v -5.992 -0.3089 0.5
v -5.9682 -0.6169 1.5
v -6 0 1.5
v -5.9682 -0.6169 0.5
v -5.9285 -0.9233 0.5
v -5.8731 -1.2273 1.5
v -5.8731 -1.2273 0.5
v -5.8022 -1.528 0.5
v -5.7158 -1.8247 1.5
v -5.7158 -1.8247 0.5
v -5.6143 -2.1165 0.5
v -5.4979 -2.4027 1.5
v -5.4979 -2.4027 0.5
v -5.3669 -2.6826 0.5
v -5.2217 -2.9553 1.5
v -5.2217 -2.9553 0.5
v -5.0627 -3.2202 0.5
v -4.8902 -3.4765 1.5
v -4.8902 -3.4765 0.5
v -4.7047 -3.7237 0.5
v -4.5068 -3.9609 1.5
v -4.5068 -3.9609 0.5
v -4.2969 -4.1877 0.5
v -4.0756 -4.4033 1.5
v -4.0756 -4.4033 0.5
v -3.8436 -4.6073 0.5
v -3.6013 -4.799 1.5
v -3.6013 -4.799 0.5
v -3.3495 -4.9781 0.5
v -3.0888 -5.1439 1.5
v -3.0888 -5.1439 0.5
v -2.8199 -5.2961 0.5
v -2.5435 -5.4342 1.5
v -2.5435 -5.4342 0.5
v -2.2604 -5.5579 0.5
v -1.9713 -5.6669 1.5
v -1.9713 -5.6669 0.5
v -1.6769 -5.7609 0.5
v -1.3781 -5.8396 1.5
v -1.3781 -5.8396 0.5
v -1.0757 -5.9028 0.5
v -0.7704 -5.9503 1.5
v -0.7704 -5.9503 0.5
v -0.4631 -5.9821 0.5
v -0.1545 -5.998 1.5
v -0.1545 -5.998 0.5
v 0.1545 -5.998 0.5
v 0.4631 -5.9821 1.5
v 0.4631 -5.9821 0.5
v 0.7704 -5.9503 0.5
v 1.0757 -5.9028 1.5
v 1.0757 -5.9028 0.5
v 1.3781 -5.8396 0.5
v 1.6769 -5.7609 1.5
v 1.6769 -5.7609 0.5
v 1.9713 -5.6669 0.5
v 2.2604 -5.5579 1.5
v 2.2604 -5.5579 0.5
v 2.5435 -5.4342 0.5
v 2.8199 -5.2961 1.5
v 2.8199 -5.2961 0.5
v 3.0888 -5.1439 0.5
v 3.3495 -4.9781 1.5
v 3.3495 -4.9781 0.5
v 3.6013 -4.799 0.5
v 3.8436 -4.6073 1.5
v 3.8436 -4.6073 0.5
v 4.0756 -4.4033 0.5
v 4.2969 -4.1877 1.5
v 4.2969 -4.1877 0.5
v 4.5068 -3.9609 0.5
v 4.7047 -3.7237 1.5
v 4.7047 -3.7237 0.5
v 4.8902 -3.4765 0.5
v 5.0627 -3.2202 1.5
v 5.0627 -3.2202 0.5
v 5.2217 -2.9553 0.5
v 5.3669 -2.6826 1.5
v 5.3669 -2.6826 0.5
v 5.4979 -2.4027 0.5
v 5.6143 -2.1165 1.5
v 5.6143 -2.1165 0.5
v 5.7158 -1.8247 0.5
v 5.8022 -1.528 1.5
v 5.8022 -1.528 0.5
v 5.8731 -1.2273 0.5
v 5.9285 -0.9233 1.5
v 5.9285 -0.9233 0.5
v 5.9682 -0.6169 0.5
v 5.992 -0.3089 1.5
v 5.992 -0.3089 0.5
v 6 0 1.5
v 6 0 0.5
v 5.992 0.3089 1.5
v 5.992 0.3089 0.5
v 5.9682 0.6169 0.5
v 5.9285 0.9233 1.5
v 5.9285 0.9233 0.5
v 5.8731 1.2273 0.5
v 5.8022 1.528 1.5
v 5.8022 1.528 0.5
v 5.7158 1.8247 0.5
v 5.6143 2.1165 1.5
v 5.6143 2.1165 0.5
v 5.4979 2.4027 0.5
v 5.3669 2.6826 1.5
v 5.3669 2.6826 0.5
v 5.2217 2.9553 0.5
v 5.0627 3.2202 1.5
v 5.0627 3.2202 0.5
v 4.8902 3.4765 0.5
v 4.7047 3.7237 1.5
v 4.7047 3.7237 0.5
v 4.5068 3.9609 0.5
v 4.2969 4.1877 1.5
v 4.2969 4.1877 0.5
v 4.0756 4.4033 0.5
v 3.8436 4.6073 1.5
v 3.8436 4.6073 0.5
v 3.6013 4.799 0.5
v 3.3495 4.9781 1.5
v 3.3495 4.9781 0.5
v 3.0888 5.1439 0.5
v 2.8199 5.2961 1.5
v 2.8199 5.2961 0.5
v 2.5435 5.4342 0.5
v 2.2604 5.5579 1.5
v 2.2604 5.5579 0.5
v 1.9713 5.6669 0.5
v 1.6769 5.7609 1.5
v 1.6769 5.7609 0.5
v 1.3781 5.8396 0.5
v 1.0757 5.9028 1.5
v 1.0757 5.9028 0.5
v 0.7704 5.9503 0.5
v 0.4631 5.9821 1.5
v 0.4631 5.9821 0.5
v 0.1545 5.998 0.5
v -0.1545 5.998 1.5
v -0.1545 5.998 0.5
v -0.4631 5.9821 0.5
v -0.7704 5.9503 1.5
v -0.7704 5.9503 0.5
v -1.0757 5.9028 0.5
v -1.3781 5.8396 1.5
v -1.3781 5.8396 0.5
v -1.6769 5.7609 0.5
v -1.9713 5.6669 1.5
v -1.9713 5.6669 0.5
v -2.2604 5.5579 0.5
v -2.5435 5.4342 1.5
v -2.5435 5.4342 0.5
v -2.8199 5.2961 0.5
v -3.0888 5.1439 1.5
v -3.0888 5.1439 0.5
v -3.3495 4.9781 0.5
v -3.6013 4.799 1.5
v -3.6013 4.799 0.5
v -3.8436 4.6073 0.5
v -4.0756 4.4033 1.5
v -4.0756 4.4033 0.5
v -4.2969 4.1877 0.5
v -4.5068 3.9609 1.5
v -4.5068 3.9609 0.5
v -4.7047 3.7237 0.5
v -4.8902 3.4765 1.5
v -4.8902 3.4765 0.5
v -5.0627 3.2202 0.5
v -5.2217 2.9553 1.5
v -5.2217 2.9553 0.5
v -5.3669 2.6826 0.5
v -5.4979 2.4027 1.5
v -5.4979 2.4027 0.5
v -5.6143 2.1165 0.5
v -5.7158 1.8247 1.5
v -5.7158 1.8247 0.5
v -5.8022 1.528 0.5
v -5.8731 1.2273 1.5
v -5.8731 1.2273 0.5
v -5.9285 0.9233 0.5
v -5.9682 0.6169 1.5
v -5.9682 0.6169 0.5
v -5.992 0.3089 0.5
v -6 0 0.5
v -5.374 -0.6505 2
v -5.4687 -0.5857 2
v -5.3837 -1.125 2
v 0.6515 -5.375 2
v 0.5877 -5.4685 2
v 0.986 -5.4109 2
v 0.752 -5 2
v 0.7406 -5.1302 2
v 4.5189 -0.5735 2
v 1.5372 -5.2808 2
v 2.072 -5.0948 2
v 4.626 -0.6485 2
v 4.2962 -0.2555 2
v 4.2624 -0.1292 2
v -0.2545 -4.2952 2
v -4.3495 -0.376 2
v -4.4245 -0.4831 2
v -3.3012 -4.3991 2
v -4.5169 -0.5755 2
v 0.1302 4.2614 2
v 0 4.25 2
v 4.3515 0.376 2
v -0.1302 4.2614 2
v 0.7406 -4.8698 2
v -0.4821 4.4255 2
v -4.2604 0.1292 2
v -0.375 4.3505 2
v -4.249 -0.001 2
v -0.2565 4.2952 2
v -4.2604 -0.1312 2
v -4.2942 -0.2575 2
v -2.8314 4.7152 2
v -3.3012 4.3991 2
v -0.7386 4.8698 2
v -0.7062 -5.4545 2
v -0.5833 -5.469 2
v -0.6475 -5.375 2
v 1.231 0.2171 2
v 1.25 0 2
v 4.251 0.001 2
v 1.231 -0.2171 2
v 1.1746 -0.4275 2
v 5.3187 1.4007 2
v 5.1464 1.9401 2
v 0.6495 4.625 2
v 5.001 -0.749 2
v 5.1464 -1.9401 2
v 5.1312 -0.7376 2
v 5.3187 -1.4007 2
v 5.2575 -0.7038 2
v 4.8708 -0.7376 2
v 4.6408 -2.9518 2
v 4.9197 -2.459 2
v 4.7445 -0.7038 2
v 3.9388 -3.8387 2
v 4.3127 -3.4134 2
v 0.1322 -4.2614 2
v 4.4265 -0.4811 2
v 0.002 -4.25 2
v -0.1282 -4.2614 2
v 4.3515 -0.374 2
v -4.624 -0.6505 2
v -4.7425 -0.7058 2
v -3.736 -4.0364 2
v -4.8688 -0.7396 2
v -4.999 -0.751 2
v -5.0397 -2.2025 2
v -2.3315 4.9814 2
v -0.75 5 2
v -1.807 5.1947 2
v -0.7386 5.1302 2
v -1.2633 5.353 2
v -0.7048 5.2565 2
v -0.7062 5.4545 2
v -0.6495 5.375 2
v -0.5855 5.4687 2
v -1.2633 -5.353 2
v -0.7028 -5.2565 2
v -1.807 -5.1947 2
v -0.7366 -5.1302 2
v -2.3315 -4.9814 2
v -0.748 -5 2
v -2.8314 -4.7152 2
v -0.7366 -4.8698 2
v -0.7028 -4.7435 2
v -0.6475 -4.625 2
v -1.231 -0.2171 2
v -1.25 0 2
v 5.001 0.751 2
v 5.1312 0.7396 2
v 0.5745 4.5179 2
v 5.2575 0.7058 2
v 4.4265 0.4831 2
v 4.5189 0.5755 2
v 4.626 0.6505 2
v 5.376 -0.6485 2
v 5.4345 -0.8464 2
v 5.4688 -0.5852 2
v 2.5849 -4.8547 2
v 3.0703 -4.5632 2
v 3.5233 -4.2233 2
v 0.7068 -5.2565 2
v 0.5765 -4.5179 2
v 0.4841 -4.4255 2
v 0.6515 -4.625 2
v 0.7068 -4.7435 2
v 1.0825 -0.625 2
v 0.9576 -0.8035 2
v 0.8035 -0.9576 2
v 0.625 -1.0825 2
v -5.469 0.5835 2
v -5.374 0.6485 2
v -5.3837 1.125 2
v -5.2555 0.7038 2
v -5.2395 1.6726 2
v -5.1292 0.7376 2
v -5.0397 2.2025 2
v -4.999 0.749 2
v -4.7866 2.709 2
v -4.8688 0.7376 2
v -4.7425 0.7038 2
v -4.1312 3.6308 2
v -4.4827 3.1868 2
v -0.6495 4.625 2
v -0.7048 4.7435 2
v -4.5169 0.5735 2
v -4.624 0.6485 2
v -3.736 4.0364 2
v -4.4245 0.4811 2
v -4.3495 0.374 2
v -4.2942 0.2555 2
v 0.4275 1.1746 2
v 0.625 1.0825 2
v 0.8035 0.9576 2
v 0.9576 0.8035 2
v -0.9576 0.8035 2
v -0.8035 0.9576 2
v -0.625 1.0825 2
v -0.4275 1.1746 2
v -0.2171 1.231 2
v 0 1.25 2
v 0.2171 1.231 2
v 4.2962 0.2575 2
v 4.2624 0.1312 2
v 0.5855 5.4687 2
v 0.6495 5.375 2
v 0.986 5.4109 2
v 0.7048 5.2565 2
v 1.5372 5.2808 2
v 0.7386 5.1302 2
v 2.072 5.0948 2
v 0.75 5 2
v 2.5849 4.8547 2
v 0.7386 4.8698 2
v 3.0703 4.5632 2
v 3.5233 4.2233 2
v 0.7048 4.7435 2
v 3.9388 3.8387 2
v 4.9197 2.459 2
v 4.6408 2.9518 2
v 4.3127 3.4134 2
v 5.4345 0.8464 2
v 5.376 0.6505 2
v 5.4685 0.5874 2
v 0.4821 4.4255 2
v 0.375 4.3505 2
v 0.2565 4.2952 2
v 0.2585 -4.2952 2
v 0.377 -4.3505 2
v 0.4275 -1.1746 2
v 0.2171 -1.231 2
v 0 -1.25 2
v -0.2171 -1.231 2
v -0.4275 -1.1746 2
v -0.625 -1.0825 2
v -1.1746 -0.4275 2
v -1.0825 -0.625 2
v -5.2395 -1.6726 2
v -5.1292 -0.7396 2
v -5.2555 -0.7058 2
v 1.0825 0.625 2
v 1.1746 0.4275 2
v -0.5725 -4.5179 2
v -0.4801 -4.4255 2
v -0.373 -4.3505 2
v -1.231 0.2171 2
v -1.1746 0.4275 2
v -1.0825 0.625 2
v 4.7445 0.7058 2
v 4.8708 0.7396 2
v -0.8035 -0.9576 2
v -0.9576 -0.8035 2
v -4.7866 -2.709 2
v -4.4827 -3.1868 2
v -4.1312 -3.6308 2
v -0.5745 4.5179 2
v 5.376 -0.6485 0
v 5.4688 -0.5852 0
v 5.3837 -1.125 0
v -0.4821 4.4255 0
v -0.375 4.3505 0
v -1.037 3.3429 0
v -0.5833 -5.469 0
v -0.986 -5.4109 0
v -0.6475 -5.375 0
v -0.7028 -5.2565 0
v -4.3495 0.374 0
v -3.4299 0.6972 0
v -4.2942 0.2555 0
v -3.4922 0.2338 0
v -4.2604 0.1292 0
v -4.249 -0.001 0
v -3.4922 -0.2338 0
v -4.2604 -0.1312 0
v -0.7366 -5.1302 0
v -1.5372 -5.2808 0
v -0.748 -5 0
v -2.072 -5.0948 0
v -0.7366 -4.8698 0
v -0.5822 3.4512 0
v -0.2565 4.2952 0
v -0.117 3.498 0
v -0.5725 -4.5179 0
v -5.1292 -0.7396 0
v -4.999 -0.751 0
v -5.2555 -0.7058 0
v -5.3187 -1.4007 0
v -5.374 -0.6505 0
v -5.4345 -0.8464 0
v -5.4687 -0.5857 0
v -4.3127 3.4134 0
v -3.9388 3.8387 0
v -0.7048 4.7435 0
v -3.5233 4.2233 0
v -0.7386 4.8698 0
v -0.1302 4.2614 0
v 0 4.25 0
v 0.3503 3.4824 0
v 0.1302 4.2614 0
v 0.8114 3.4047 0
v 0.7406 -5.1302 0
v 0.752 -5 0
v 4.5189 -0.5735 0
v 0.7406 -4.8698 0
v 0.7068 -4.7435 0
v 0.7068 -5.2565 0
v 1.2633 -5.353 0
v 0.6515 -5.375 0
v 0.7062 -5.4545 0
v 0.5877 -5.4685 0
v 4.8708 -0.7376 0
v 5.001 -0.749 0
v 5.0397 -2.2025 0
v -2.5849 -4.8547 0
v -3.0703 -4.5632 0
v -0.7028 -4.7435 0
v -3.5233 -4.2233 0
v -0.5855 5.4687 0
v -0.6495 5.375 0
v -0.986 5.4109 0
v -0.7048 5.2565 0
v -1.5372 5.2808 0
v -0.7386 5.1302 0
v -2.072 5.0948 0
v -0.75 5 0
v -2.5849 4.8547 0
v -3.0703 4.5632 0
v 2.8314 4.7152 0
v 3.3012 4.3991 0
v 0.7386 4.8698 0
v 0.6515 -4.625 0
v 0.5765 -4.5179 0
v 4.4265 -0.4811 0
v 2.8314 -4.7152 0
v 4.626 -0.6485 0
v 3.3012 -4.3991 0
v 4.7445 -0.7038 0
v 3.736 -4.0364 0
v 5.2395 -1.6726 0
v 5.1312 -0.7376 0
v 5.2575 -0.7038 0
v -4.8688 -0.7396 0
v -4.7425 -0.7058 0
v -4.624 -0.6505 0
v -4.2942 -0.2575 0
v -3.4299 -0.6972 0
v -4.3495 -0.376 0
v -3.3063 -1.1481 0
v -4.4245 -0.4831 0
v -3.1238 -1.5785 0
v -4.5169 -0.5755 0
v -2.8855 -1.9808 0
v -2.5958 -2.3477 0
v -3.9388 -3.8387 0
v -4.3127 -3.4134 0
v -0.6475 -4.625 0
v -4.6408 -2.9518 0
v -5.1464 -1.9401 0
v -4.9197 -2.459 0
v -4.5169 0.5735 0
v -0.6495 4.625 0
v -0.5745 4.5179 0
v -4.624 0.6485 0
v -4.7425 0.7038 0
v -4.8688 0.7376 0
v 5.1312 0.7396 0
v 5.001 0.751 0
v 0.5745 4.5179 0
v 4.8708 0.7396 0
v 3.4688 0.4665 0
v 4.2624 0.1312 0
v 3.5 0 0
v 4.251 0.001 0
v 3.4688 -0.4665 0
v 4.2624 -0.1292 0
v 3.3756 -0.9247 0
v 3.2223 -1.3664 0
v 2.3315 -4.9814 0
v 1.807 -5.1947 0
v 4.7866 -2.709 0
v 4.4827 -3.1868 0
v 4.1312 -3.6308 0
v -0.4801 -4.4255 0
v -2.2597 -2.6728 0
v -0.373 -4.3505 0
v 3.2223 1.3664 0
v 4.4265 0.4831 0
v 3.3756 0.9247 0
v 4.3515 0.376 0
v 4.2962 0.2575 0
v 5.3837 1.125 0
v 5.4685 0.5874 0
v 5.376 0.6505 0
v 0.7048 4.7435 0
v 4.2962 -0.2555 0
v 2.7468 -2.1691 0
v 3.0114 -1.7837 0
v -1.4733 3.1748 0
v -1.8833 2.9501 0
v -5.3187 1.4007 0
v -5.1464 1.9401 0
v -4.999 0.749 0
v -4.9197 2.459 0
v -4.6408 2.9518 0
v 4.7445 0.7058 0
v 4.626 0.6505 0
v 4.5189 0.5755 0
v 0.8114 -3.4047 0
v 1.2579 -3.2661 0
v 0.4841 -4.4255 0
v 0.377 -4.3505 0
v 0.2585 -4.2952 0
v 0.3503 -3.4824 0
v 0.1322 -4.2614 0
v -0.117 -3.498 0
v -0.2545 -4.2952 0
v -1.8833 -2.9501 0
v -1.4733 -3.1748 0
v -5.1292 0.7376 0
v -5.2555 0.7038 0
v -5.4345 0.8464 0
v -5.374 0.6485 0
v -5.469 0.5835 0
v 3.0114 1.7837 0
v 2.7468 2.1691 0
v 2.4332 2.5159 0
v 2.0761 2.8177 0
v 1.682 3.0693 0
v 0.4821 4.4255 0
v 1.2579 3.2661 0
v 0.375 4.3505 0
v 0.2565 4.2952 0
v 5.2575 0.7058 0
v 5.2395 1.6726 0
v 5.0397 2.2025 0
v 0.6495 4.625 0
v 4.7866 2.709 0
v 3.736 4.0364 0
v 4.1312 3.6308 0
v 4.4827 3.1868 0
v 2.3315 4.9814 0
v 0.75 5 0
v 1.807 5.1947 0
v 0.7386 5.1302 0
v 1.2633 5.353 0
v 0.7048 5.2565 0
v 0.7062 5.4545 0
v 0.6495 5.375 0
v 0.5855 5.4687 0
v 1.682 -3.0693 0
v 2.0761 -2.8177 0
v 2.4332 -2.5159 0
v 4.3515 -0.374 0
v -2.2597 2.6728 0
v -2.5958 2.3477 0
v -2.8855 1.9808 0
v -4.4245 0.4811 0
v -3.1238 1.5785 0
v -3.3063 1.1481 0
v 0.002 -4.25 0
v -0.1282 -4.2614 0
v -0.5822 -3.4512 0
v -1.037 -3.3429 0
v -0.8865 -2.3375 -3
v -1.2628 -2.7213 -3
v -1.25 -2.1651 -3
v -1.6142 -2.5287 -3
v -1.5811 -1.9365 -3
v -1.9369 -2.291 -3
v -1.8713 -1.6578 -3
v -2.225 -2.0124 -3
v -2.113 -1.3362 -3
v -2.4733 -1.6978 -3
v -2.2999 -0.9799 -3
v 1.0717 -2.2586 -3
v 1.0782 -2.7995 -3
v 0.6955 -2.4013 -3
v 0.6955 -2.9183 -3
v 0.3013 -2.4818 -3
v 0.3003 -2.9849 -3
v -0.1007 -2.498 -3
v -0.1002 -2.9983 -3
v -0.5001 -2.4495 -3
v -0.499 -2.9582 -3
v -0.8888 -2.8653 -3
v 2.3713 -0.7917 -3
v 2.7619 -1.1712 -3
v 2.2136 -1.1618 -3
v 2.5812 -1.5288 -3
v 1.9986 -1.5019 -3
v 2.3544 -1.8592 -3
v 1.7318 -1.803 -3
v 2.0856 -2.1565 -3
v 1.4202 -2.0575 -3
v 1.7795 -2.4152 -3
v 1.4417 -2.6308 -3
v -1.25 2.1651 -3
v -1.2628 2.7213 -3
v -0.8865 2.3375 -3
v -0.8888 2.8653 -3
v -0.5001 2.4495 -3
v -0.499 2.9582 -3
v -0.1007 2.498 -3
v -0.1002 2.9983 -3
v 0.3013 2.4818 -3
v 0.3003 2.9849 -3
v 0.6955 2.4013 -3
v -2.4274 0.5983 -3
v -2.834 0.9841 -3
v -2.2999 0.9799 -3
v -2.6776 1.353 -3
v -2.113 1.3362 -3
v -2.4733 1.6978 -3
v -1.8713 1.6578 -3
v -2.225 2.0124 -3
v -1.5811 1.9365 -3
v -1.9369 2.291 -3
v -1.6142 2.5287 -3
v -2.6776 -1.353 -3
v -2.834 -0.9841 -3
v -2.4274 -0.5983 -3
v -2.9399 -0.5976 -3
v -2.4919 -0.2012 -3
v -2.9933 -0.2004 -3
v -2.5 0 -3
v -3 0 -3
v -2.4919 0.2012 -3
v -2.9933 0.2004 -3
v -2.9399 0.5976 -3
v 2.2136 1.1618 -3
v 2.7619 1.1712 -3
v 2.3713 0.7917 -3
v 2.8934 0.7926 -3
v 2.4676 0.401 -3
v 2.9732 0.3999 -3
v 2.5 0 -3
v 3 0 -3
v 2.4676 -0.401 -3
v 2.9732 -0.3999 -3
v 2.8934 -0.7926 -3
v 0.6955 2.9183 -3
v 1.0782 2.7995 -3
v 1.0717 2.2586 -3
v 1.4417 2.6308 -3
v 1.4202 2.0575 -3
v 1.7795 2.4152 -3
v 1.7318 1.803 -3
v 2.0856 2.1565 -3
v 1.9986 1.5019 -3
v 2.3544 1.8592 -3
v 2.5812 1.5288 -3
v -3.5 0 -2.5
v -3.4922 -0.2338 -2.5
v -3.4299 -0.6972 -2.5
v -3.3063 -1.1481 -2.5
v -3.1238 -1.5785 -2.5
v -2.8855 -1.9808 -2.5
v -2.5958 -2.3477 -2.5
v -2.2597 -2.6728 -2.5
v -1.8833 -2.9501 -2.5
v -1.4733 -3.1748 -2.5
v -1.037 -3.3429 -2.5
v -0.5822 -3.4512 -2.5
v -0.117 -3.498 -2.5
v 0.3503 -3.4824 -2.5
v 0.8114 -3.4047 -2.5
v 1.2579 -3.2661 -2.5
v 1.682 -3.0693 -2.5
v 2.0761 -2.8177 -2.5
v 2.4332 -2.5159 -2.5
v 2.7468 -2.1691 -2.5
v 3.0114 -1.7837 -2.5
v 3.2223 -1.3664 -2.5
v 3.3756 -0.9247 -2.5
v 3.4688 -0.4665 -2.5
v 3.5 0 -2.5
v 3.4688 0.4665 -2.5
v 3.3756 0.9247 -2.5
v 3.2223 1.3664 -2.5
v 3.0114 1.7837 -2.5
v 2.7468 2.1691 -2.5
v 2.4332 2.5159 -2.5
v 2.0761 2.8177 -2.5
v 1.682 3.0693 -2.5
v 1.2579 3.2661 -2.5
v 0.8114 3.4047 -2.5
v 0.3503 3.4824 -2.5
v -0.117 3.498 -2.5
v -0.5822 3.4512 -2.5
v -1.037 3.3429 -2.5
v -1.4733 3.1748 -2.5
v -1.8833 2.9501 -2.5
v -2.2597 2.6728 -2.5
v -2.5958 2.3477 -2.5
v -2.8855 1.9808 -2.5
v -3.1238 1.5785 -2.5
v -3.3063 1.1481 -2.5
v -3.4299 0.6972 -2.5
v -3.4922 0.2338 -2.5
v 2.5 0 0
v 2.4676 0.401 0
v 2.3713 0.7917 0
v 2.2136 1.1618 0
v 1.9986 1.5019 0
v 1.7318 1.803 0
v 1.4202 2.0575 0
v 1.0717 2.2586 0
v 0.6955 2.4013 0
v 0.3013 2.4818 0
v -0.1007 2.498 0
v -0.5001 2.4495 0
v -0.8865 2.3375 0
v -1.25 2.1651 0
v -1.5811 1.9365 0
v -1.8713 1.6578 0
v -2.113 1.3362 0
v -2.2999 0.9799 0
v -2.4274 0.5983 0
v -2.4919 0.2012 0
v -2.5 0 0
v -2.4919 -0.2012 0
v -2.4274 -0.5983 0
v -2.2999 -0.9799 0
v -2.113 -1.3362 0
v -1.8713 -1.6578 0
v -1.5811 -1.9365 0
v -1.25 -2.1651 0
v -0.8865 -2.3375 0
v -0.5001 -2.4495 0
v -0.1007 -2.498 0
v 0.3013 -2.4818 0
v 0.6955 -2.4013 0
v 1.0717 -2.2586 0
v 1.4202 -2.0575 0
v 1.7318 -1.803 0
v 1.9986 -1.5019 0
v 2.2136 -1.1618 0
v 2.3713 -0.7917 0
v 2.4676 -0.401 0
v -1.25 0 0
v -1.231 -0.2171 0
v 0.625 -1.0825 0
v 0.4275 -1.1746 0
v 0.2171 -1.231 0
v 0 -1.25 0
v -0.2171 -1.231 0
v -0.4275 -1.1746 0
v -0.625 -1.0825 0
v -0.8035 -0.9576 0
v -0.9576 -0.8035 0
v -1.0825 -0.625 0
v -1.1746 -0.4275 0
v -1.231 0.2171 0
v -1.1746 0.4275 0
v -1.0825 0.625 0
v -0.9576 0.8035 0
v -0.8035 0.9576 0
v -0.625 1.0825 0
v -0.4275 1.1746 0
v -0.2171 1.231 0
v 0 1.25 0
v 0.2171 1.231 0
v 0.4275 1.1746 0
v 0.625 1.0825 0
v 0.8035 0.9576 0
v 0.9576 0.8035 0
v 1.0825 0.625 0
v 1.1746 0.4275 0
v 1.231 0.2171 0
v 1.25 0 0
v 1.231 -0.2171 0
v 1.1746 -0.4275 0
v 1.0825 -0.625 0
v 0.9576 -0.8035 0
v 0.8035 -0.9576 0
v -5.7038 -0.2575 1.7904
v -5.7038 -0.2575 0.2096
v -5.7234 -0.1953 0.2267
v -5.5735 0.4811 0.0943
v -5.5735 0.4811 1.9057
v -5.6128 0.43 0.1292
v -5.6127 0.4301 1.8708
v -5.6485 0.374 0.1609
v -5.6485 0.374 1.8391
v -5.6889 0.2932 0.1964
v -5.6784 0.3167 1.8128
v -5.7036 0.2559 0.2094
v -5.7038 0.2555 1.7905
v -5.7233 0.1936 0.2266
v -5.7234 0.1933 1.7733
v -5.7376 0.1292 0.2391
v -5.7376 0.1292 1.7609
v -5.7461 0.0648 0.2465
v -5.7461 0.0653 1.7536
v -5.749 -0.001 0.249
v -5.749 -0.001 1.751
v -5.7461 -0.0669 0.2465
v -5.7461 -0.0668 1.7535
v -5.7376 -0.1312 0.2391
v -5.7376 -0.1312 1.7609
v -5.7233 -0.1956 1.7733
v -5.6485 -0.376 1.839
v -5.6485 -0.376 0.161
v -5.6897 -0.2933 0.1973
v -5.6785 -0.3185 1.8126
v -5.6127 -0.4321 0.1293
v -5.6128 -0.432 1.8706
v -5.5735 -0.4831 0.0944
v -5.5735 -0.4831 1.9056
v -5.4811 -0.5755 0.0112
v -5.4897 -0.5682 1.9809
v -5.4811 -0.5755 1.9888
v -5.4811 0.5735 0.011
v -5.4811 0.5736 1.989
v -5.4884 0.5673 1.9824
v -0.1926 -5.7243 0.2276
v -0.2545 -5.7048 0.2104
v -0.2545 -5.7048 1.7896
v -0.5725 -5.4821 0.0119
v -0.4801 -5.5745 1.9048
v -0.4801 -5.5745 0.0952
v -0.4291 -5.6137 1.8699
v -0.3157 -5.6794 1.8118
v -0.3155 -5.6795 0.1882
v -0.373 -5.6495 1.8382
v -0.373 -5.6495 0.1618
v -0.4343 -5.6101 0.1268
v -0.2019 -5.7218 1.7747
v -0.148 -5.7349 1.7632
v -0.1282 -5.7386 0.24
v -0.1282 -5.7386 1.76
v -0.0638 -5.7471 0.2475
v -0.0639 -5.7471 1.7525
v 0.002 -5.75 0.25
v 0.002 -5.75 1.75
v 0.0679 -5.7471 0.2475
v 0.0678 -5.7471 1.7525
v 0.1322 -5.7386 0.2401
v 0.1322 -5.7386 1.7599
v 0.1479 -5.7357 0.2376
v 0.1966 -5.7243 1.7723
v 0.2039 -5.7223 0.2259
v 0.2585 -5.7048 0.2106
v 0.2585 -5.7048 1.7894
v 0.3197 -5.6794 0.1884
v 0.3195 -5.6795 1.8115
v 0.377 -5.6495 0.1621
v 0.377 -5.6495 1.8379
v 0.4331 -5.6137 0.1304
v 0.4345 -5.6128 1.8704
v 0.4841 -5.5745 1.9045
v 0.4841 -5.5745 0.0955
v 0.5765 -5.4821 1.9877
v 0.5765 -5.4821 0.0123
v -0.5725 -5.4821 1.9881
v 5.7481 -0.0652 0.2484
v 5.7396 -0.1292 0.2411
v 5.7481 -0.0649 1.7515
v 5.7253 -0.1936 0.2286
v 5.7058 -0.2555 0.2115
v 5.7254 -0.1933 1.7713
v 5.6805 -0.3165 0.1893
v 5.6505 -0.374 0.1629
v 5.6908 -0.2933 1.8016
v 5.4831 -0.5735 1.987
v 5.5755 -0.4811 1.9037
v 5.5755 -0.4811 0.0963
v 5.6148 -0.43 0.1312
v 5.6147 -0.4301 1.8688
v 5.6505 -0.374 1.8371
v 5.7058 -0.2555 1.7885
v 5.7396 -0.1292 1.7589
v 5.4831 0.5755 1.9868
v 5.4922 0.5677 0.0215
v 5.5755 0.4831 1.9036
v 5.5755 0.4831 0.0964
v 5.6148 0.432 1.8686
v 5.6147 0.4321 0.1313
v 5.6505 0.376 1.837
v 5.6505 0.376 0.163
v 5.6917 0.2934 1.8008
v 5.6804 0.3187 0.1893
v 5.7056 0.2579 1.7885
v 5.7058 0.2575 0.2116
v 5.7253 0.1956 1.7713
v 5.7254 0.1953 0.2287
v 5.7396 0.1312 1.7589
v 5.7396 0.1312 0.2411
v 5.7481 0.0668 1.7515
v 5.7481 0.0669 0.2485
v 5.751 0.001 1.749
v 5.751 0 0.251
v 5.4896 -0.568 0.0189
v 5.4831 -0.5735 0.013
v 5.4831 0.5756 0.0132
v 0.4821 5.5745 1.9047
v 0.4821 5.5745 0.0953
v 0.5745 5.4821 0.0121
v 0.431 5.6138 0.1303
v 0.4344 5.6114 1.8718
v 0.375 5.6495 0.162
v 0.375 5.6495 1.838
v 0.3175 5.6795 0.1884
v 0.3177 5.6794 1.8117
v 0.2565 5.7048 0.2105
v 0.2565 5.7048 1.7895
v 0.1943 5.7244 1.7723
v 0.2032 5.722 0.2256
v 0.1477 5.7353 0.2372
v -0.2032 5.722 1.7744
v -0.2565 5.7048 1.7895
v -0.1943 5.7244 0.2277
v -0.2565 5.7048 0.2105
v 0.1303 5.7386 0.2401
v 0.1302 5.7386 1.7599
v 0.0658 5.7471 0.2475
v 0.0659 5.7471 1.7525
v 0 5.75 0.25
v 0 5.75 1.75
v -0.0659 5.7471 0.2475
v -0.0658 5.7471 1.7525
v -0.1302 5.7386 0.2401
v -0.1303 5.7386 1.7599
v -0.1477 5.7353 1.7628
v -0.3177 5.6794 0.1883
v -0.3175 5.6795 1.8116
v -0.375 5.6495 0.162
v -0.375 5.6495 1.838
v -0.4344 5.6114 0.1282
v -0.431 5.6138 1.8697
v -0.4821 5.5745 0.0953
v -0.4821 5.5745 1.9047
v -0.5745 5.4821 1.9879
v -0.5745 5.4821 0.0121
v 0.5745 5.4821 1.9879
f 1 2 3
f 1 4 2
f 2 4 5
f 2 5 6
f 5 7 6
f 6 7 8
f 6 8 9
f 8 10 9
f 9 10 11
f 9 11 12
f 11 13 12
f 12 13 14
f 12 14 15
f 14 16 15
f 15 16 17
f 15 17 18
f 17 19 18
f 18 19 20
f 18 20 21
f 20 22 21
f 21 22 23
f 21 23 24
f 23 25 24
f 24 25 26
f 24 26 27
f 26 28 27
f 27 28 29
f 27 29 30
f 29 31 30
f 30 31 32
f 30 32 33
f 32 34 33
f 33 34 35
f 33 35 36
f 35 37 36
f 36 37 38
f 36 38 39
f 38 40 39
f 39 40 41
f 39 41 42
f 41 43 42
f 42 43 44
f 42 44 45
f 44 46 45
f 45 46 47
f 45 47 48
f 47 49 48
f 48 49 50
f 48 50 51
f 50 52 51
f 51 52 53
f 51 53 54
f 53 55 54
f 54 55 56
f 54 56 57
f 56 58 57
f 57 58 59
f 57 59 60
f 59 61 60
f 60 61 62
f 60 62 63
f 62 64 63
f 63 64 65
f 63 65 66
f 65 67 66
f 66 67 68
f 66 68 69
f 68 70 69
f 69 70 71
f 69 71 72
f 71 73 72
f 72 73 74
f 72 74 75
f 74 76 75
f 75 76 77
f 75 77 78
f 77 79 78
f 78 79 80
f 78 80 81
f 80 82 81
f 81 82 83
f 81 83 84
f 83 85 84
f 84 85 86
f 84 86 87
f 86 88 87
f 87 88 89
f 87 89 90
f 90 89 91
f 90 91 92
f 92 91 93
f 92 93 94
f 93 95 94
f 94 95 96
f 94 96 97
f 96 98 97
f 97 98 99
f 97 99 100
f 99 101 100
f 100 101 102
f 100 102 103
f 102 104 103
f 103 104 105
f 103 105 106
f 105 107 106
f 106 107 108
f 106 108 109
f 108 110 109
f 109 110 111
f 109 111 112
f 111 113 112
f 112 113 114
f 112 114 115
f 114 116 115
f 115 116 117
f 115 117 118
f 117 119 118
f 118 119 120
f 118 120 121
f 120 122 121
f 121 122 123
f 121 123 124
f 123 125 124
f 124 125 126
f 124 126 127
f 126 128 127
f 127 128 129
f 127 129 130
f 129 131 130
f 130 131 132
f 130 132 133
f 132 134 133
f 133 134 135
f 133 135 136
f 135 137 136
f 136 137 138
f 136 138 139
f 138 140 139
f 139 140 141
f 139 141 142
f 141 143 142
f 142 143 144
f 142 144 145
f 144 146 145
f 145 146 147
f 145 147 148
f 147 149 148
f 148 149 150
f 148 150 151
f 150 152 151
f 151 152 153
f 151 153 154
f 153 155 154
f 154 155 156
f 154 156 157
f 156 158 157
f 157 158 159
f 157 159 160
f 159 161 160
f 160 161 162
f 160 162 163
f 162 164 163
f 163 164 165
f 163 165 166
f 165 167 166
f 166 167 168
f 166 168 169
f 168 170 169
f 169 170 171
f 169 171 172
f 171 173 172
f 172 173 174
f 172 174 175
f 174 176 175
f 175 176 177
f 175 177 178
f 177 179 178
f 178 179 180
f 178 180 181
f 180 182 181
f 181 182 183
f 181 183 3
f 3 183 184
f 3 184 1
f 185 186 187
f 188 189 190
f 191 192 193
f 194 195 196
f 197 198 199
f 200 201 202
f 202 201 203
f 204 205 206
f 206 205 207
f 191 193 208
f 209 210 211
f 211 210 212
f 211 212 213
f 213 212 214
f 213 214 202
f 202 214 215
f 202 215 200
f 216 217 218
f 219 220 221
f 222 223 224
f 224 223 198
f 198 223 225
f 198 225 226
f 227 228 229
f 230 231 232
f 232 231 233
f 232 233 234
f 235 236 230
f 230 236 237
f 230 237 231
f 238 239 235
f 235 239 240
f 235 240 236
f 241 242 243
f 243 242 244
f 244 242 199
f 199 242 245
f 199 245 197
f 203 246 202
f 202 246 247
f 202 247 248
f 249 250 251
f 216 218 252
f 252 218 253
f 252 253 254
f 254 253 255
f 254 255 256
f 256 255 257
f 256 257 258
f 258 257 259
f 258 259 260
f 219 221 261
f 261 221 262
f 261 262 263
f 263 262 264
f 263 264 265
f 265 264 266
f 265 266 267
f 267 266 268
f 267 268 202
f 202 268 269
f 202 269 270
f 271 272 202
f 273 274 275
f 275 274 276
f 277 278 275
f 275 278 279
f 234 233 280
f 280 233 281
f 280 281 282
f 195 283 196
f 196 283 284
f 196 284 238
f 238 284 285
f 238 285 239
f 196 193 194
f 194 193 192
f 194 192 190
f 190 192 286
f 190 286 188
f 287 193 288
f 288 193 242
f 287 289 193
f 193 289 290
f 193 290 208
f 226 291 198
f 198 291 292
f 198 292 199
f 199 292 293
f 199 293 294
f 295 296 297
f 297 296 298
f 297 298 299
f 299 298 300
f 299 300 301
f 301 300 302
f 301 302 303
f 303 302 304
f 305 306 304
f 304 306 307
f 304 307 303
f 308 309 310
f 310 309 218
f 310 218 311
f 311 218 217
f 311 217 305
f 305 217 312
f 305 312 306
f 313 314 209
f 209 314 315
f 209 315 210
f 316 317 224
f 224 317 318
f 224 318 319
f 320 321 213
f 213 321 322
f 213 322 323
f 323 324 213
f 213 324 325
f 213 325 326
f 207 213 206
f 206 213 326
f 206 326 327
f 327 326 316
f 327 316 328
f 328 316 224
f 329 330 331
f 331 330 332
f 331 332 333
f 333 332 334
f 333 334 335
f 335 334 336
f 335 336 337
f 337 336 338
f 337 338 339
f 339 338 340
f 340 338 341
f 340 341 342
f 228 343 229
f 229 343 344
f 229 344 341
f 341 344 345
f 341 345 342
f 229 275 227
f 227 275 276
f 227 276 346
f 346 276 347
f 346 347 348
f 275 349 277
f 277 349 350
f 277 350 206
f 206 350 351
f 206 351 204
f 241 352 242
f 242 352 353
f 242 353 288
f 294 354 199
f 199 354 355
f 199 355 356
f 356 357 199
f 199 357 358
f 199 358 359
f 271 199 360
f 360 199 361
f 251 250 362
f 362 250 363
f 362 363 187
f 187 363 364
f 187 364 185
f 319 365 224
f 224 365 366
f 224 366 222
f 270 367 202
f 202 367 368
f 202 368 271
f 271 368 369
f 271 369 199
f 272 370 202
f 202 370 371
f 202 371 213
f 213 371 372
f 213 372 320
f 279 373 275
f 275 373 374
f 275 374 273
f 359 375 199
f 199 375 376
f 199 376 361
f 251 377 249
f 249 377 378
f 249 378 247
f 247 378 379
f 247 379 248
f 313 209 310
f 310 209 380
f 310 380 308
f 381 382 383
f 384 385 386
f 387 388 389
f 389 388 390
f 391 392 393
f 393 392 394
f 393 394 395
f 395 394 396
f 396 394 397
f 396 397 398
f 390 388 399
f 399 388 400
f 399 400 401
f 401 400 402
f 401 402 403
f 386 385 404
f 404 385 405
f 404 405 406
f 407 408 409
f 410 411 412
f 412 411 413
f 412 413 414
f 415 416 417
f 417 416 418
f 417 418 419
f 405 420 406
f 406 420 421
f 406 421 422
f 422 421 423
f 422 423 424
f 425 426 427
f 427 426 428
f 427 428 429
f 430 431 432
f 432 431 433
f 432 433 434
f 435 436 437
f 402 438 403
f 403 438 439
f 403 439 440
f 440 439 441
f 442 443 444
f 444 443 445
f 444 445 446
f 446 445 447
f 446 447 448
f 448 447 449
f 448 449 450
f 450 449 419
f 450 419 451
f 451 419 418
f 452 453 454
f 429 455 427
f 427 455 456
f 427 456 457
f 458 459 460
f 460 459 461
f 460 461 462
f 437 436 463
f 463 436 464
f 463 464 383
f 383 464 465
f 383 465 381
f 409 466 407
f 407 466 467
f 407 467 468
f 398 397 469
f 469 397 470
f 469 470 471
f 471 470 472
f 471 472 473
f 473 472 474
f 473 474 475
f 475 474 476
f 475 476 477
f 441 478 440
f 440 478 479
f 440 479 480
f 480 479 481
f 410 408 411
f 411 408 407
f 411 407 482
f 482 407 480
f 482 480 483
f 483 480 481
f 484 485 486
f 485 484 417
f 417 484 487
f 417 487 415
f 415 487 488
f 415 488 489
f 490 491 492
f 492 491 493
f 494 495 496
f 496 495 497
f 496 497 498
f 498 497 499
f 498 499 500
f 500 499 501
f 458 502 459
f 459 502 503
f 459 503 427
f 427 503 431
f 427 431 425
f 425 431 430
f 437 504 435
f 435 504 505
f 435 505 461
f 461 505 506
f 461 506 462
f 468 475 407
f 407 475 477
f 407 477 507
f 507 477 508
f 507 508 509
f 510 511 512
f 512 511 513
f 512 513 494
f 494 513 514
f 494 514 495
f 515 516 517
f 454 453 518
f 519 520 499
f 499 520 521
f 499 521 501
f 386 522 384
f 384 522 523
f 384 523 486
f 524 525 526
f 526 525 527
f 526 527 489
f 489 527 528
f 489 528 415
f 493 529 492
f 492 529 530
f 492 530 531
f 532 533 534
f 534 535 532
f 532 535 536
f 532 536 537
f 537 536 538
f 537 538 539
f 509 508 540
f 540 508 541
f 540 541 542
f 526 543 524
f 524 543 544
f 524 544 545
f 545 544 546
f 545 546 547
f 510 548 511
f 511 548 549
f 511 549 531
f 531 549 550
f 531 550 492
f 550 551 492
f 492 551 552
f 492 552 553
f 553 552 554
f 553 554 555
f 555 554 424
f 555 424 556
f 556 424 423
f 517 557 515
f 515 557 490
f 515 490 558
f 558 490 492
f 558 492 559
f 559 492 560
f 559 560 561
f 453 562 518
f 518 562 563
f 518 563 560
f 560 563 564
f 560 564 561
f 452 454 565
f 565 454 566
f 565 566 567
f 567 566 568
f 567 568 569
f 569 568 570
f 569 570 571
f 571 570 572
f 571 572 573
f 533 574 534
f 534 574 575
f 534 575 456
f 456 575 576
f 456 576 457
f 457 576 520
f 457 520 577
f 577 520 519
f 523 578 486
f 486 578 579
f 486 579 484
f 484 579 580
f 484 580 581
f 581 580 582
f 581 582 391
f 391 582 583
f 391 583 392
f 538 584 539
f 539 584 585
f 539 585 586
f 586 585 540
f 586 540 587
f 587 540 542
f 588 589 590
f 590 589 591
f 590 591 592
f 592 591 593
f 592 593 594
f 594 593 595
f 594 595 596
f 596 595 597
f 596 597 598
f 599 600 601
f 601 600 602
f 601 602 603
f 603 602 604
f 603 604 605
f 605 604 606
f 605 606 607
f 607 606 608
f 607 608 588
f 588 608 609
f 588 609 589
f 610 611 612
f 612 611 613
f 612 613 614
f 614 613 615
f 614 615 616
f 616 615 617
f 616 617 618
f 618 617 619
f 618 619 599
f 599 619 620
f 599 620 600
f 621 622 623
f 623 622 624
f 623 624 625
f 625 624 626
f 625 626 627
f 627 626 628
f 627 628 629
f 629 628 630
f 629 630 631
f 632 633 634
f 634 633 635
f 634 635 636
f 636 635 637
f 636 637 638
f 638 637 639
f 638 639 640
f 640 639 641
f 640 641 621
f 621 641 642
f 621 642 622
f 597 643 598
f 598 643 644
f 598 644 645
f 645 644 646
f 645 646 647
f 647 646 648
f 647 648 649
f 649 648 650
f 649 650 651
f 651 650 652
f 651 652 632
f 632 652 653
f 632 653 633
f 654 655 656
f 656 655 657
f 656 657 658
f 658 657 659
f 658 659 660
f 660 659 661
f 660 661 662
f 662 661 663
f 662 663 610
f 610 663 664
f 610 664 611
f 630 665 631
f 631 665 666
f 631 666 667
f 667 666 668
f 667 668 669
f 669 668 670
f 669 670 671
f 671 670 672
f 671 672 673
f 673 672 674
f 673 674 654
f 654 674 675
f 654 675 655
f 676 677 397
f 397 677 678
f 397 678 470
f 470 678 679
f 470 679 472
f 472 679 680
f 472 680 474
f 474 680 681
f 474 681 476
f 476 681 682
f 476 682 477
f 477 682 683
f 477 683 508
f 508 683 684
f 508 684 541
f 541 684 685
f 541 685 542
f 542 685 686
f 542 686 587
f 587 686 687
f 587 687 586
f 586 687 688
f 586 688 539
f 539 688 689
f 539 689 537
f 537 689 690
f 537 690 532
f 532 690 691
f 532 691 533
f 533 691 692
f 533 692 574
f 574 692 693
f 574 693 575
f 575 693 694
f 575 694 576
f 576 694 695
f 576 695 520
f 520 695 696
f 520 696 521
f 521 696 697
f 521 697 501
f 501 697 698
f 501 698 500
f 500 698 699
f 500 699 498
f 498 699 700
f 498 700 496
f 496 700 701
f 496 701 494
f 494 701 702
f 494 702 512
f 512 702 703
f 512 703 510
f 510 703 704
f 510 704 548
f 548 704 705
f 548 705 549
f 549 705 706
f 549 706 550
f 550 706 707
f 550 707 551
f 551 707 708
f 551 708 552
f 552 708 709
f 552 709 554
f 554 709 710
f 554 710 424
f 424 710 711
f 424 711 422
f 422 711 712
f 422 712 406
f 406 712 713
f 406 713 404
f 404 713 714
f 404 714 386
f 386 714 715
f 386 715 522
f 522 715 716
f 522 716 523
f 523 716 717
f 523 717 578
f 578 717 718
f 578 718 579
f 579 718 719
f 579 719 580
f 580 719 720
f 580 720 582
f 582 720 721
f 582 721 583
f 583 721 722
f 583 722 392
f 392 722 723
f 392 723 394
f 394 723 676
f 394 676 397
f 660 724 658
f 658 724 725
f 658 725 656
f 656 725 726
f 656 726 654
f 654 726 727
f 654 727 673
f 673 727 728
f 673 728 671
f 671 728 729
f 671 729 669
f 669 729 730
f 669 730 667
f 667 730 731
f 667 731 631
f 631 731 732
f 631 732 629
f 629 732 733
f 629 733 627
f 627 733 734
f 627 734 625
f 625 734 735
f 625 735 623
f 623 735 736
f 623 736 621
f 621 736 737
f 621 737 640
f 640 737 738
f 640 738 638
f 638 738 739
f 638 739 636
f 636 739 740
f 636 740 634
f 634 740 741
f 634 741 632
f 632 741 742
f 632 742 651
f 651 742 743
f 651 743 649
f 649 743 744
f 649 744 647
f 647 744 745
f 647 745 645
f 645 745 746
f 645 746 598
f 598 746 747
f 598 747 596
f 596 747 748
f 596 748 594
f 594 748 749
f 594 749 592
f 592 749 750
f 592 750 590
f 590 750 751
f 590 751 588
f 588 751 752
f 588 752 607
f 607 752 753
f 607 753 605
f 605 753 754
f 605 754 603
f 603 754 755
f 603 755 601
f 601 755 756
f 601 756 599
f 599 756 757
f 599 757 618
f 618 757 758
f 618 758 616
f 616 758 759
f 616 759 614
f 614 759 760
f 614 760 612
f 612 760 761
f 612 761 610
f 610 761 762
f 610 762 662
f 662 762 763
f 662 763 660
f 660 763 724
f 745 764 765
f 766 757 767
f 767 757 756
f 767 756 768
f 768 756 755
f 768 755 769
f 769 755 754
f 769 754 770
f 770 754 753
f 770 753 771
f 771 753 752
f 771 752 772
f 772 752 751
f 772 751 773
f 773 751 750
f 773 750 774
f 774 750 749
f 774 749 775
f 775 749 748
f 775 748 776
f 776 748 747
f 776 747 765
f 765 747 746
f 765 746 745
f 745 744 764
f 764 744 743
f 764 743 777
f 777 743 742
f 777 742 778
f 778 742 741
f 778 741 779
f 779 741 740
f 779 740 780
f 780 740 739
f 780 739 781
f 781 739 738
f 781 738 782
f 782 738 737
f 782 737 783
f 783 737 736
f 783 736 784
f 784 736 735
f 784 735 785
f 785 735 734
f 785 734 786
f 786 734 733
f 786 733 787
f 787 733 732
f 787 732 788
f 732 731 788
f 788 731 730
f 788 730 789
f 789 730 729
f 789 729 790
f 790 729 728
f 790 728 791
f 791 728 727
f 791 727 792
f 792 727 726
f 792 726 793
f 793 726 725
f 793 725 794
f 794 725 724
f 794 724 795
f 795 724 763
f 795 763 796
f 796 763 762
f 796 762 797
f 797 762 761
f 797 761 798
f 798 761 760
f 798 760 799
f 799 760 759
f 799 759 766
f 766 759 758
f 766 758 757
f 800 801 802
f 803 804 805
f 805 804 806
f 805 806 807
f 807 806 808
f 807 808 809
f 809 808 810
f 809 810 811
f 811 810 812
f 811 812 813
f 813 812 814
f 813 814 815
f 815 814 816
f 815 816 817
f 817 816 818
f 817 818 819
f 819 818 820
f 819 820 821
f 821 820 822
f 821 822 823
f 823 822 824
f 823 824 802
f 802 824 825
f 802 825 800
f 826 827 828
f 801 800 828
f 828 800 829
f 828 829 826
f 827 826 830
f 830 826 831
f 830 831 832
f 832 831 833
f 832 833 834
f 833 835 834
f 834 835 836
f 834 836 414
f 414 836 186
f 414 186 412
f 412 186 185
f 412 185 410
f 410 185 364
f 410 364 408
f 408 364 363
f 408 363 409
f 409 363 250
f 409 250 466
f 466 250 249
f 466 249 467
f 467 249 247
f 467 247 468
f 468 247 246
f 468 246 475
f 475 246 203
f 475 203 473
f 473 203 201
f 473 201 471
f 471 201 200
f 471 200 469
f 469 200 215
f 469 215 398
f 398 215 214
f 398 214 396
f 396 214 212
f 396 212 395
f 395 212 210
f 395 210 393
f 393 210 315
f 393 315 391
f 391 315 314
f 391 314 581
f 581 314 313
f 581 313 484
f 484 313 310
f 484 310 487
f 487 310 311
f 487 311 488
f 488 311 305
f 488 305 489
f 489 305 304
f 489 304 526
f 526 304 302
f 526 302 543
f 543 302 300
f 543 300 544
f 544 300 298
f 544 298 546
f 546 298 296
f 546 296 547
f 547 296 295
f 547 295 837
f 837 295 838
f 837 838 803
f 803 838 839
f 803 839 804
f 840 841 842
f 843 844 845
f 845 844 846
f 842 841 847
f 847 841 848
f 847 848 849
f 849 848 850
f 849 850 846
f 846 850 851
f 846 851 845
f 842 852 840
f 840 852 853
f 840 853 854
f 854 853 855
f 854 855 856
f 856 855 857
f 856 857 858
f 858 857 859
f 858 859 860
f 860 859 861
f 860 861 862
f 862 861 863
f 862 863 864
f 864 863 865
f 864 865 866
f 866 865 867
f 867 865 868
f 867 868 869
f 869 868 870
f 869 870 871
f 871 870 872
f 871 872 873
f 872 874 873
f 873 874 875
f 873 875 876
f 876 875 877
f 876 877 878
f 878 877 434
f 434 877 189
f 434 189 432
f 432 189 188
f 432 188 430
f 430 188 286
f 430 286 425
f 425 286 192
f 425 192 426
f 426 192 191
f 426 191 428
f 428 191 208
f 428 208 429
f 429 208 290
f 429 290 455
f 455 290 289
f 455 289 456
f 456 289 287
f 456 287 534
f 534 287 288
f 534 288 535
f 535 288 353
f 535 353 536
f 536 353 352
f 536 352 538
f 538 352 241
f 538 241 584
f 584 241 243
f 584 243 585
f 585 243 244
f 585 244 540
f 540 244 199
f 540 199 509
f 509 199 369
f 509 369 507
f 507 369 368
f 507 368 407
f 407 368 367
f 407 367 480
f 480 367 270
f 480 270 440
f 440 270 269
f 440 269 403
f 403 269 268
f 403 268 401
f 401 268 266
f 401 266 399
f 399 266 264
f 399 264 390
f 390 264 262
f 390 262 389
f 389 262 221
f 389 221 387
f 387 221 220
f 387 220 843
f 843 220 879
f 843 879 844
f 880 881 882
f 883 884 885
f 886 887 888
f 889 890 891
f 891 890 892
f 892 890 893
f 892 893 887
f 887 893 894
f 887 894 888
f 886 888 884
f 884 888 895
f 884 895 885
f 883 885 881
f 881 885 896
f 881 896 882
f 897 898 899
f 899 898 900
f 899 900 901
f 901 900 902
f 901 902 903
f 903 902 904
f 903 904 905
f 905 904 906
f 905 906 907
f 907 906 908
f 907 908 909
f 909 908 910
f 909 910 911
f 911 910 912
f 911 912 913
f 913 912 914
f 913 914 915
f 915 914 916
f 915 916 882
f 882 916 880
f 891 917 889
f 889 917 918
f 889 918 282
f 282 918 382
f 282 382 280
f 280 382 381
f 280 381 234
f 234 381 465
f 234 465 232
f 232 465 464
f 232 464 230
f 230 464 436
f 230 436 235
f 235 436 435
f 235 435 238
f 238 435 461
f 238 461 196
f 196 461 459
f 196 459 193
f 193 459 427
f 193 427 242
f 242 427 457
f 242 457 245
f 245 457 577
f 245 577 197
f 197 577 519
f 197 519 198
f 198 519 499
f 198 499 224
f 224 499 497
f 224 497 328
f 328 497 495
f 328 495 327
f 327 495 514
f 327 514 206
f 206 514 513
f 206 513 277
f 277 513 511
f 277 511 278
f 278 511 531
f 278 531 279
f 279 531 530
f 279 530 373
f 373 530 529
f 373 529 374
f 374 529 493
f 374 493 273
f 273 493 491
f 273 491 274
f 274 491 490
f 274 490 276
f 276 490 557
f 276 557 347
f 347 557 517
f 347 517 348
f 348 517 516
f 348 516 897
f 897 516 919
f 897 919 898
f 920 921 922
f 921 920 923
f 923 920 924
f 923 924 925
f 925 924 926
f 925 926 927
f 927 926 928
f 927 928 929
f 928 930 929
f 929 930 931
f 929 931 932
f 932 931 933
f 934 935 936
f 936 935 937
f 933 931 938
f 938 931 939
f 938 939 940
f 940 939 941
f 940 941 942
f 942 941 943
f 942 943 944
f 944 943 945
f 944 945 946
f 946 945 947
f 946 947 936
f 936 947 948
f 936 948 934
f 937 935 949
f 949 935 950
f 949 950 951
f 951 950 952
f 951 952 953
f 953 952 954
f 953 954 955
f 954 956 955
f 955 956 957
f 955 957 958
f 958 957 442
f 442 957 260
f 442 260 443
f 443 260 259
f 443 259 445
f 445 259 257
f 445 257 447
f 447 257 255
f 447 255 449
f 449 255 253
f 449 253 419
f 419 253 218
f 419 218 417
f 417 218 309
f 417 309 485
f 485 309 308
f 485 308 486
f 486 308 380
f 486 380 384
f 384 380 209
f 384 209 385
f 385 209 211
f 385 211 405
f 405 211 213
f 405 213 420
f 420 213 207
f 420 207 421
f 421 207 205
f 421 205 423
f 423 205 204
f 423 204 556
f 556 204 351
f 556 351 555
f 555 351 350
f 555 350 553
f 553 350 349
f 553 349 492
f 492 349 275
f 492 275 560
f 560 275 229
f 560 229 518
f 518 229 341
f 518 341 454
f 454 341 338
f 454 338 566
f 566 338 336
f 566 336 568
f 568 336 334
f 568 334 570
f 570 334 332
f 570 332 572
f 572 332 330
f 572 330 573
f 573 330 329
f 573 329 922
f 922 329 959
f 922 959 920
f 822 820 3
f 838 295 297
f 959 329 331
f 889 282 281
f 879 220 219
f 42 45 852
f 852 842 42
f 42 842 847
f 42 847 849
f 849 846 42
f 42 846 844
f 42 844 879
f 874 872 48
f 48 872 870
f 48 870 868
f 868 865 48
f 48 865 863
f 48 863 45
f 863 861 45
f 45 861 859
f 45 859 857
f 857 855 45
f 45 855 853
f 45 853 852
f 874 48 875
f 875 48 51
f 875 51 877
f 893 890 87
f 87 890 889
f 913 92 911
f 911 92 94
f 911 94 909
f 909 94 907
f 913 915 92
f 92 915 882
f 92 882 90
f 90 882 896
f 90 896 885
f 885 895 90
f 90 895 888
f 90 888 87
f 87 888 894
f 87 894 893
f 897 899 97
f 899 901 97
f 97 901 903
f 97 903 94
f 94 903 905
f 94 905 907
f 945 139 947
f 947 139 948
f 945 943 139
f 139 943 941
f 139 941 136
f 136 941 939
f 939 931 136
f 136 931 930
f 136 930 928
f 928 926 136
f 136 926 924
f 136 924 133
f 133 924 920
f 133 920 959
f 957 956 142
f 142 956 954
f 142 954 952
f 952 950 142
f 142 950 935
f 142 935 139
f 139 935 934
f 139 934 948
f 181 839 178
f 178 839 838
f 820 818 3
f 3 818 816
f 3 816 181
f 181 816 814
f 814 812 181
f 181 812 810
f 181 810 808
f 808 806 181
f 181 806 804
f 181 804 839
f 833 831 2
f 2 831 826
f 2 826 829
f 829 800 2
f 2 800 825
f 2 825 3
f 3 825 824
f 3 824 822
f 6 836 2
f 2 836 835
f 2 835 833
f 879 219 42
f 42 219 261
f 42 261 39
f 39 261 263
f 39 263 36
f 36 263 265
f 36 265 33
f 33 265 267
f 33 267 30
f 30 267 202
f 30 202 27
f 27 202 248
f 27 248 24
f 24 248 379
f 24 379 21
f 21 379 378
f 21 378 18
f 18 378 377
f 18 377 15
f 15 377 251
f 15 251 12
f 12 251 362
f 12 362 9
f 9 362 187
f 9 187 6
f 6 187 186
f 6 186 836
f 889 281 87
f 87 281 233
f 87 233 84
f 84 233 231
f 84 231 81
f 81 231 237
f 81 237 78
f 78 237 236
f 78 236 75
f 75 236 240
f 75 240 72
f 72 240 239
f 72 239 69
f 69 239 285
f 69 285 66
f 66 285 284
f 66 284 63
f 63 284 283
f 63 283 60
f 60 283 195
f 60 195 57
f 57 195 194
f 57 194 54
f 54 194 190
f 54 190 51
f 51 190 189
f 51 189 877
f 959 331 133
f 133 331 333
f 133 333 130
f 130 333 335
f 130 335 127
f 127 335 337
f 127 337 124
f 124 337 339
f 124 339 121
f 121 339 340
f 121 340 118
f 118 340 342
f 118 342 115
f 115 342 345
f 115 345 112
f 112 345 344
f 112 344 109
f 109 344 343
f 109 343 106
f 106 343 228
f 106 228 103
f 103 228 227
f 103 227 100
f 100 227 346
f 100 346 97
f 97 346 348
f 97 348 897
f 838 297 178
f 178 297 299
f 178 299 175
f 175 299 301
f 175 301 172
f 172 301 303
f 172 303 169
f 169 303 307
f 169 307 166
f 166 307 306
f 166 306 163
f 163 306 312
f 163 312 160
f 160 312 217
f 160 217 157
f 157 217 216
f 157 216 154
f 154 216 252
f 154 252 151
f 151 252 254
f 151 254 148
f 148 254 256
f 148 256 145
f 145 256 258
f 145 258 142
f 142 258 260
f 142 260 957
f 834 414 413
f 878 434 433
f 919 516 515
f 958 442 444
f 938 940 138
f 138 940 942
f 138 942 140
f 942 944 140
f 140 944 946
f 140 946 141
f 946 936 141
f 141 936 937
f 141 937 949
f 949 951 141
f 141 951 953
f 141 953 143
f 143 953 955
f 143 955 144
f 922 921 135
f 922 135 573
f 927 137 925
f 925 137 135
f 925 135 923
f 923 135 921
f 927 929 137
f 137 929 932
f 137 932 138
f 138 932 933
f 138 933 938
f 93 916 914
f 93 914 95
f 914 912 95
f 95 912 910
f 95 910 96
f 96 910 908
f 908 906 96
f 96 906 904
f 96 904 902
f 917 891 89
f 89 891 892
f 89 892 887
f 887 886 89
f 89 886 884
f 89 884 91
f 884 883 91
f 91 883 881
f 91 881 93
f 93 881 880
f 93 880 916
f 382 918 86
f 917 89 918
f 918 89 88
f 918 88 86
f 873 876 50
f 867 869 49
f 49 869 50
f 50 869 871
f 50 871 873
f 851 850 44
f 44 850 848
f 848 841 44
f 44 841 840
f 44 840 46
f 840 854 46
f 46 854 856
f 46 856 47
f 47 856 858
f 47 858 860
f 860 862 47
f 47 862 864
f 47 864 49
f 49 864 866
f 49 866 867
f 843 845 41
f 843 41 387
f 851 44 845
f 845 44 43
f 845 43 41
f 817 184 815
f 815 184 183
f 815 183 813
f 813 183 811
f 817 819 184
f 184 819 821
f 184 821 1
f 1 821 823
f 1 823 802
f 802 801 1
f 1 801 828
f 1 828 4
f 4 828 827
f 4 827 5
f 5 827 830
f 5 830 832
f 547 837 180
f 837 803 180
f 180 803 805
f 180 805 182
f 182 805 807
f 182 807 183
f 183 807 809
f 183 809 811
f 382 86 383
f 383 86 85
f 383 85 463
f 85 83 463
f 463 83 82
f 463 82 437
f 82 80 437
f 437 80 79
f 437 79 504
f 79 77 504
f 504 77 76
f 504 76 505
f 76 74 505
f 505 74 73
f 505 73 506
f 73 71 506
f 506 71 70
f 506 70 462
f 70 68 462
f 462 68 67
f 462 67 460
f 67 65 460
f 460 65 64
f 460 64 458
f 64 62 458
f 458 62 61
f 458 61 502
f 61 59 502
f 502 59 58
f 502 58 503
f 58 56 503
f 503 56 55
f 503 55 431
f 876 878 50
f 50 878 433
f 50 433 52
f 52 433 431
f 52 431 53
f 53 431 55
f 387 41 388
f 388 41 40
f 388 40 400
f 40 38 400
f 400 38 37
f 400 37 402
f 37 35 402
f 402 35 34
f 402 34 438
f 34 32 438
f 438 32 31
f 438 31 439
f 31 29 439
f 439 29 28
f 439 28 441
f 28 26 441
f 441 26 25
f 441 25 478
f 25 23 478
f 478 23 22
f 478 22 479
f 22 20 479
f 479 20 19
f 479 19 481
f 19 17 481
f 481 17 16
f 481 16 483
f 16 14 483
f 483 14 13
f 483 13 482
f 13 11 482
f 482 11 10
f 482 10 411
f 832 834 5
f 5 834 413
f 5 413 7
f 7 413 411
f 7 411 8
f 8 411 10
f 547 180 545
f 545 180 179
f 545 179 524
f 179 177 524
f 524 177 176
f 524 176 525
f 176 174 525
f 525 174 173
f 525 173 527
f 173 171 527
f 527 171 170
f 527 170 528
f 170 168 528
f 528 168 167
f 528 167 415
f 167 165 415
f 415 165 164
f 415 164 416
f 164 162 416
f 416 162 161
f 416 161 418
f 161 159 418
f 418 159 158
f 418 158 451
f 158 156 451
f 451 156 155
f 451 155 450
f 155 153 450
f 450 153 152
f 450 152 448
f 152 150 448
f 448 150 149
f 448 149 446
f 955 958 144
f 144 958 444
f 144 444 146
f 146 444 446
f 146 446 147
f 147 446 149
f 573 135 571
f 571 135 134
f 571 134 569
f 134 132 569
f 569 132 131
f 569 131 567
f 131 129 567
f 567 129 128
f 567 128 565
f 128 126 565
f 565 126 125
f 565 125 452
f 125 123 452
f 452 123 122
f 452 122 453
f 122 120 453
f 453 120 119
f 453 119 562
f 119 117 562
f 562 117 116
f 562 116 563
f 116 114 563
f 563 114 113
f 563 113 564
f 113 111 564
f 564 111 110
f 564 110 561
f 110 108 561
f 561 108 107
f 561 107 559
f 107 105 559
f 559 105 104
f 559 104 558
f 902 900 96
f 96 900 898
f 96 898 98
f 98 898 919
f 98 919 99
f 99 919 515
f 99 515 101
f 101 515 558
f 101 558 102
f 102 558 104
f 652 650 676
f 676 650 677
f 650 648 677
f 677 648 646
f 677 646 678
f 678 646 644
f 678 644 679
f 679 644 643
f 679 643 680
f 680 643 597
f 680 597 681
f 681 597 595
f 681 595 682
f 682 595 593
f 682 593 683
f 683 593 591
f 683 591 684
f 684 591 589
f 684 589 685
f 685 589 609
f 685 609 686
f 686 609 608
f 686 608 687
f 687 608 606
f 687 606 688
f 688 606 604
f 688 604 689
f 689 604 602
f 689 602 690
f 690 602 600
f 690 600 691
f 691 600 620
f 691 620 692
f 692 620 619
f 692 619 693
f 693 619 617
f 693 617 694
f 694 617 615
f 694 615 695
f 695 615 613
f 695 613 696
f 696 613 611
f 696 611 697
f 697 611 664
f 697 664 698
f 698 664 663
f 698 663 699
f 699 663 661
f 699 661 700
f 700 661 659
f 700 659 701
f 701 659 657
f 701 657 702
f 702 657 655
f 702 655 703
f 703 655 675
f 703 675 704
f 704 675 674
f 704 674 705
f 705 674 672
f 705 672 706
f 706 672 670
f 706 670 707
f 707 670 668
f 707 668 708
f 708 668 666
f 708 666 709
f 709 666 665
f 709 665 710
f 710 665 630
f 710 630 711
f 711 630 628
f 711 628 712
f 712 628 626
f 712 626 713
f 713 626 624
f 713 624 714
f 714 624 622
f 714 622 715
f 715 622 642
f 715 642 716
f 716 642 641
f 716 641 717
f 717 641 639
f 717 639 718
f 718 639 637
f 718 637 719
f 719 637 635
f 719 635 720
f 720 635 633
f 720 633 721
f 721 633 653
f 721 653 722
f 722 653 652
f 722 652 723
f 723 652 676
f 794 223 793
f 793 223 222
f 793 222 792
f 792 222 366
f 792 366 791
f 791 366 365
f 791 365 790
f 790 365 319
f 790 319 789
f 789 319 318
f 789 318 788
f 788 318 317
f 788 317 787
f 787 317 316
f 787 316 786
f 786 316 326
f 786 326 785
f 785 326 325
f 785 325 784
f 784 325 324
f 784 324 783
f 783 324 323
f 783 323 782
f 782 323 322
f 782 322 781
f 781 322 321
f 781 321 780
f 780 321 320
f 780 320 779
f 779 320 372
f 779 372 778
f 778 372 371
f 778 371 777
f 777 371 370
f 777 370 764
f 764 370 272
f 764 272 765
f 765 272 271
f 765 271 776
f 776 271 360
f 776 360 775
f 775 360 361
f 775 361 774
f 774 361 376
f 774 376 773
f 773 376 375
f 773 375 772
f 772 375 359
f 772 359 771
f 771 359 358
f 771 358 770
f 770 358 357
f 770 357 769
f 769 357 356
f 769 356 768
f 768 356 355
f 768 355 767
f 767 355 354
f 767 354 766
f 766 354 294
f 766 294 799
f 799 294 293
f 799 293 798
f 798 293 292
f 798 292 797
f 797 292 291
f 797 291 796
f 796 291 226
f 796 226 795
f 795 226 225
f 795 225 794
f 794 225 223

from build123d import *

# Parameters (mm, degrees)
SKETCH1_R           = 6
BOSS_EXTRUDE1_DEPTH = 2
SKETCH2_R           = 3.5
SKETCH2_R_2         = 2.5
BOSS_EXTRUDE2_DEPTH = 3
SKETCH3_R           = 0.75
CUT_EXTRUDE1_DEPTH  = 2.5
CHAMFER1_SIZE       = 0.5
SKETCH5_R           = 1.25
CUT_EXTRUDE3_DEPTH  = 10.848857924


with BuildPart() as part:
    # Sketch1 → Boss-Extrude1 (new body)
    with BuildSketch(Plane.XY):
        Circle(SKETCH1_R)
    extrude(amount=BOSS_EXTRUDE1_DEPTH)

    # Sketch2 → Boss-Extrude2 (add)
    with BuildSketch(Plane(origin=(0, 0, 0), x_dir=(-1, 0, 0), z_dir=(0, 0, -1))):
        with Locations(Location((0, 0, 0), (0, 0, 180))):
            Circle(SKETCH2_R)
        Circle(SKETCH2_R_2, mode=Mode.SUBTRACT)
    extrude(amount=BOSS_EXTRUDE2_DEPTH)

    # Sketch3 → Cut-Extrude1 (cut)
    with BuildSketch(Plane.XY.offset(2)):
        with Locations((0, 5)):
            Circle(SKETCH3_R)
        with Locations((5.001, 0.001)):
            Circle(SKETCH3_R)
        with Locations((0.002, -5)):
            Circle(SKETCH3_R)
        with Locations((-4.999, -0.001)):
            Circle(SKETCH3_R)
    extrude(amount=-CUT_EXTRUDE1_DEPTH, mode=Mode.SUBTRACT)

    # Chamfer1
    # the kernel refuses this chamfer: 0.5 mm, written as the material it takes off along each edge
    with BuildSketch(Plane(origin=(0, 0, 0), x_dir=(1, 0, 0), z_dir=(0, -1, 0))) as chamfer1_piece_1:
        Polygon((6, CHAMFER1_SIZE), (6 - CHAMFER1_SIZE, 0), (6, 0), align=None)
    revolve(axis=Axis((0, 0, 0), (0, 0, 1)), mode=Mode.SUBTRACT)
    with BuildSketch(Plane(origin=(0, 0, 2), x_dir=(1, 0, 0), z_dir=(0, -1, 0))) as chamfer1_piece_2:
        Polygon((6, -CHAMFER1_SIZE), (6 - CHAMFER1_SIZE, 0), (6, 0), align=None)
    revolve(axis=Axis((0, 0, 2), (0, 0, 1)), mode=Mode.SUBTRACT)
    with BuildSketch(Plane(origin=(0, 0, -3), x_dir=(1, 0, 0), z_dir=(0, 1, 0))) as chamfer1_piece_3:
        Polygon((3.5, -CHAMFER1_SIZE), (3.5 - CHAMFER1_SIZE, 0), (3.5, 0), align=None)
    revolve(axis=Axis((0, 0, -3), (0, 0, -1)), mode=Mode.SUBTRACT)

    # Sketch5 → Cut-Extrude3 (cut, through all)
    with BuildSketch(Plane.XY.offset(2)):
        Circle(SKETCH5_R)
    extrude(amount=-CUT_EXTRUDE3_DEPTH, mode=Mode.SUBTRACT)


solid = part.part
